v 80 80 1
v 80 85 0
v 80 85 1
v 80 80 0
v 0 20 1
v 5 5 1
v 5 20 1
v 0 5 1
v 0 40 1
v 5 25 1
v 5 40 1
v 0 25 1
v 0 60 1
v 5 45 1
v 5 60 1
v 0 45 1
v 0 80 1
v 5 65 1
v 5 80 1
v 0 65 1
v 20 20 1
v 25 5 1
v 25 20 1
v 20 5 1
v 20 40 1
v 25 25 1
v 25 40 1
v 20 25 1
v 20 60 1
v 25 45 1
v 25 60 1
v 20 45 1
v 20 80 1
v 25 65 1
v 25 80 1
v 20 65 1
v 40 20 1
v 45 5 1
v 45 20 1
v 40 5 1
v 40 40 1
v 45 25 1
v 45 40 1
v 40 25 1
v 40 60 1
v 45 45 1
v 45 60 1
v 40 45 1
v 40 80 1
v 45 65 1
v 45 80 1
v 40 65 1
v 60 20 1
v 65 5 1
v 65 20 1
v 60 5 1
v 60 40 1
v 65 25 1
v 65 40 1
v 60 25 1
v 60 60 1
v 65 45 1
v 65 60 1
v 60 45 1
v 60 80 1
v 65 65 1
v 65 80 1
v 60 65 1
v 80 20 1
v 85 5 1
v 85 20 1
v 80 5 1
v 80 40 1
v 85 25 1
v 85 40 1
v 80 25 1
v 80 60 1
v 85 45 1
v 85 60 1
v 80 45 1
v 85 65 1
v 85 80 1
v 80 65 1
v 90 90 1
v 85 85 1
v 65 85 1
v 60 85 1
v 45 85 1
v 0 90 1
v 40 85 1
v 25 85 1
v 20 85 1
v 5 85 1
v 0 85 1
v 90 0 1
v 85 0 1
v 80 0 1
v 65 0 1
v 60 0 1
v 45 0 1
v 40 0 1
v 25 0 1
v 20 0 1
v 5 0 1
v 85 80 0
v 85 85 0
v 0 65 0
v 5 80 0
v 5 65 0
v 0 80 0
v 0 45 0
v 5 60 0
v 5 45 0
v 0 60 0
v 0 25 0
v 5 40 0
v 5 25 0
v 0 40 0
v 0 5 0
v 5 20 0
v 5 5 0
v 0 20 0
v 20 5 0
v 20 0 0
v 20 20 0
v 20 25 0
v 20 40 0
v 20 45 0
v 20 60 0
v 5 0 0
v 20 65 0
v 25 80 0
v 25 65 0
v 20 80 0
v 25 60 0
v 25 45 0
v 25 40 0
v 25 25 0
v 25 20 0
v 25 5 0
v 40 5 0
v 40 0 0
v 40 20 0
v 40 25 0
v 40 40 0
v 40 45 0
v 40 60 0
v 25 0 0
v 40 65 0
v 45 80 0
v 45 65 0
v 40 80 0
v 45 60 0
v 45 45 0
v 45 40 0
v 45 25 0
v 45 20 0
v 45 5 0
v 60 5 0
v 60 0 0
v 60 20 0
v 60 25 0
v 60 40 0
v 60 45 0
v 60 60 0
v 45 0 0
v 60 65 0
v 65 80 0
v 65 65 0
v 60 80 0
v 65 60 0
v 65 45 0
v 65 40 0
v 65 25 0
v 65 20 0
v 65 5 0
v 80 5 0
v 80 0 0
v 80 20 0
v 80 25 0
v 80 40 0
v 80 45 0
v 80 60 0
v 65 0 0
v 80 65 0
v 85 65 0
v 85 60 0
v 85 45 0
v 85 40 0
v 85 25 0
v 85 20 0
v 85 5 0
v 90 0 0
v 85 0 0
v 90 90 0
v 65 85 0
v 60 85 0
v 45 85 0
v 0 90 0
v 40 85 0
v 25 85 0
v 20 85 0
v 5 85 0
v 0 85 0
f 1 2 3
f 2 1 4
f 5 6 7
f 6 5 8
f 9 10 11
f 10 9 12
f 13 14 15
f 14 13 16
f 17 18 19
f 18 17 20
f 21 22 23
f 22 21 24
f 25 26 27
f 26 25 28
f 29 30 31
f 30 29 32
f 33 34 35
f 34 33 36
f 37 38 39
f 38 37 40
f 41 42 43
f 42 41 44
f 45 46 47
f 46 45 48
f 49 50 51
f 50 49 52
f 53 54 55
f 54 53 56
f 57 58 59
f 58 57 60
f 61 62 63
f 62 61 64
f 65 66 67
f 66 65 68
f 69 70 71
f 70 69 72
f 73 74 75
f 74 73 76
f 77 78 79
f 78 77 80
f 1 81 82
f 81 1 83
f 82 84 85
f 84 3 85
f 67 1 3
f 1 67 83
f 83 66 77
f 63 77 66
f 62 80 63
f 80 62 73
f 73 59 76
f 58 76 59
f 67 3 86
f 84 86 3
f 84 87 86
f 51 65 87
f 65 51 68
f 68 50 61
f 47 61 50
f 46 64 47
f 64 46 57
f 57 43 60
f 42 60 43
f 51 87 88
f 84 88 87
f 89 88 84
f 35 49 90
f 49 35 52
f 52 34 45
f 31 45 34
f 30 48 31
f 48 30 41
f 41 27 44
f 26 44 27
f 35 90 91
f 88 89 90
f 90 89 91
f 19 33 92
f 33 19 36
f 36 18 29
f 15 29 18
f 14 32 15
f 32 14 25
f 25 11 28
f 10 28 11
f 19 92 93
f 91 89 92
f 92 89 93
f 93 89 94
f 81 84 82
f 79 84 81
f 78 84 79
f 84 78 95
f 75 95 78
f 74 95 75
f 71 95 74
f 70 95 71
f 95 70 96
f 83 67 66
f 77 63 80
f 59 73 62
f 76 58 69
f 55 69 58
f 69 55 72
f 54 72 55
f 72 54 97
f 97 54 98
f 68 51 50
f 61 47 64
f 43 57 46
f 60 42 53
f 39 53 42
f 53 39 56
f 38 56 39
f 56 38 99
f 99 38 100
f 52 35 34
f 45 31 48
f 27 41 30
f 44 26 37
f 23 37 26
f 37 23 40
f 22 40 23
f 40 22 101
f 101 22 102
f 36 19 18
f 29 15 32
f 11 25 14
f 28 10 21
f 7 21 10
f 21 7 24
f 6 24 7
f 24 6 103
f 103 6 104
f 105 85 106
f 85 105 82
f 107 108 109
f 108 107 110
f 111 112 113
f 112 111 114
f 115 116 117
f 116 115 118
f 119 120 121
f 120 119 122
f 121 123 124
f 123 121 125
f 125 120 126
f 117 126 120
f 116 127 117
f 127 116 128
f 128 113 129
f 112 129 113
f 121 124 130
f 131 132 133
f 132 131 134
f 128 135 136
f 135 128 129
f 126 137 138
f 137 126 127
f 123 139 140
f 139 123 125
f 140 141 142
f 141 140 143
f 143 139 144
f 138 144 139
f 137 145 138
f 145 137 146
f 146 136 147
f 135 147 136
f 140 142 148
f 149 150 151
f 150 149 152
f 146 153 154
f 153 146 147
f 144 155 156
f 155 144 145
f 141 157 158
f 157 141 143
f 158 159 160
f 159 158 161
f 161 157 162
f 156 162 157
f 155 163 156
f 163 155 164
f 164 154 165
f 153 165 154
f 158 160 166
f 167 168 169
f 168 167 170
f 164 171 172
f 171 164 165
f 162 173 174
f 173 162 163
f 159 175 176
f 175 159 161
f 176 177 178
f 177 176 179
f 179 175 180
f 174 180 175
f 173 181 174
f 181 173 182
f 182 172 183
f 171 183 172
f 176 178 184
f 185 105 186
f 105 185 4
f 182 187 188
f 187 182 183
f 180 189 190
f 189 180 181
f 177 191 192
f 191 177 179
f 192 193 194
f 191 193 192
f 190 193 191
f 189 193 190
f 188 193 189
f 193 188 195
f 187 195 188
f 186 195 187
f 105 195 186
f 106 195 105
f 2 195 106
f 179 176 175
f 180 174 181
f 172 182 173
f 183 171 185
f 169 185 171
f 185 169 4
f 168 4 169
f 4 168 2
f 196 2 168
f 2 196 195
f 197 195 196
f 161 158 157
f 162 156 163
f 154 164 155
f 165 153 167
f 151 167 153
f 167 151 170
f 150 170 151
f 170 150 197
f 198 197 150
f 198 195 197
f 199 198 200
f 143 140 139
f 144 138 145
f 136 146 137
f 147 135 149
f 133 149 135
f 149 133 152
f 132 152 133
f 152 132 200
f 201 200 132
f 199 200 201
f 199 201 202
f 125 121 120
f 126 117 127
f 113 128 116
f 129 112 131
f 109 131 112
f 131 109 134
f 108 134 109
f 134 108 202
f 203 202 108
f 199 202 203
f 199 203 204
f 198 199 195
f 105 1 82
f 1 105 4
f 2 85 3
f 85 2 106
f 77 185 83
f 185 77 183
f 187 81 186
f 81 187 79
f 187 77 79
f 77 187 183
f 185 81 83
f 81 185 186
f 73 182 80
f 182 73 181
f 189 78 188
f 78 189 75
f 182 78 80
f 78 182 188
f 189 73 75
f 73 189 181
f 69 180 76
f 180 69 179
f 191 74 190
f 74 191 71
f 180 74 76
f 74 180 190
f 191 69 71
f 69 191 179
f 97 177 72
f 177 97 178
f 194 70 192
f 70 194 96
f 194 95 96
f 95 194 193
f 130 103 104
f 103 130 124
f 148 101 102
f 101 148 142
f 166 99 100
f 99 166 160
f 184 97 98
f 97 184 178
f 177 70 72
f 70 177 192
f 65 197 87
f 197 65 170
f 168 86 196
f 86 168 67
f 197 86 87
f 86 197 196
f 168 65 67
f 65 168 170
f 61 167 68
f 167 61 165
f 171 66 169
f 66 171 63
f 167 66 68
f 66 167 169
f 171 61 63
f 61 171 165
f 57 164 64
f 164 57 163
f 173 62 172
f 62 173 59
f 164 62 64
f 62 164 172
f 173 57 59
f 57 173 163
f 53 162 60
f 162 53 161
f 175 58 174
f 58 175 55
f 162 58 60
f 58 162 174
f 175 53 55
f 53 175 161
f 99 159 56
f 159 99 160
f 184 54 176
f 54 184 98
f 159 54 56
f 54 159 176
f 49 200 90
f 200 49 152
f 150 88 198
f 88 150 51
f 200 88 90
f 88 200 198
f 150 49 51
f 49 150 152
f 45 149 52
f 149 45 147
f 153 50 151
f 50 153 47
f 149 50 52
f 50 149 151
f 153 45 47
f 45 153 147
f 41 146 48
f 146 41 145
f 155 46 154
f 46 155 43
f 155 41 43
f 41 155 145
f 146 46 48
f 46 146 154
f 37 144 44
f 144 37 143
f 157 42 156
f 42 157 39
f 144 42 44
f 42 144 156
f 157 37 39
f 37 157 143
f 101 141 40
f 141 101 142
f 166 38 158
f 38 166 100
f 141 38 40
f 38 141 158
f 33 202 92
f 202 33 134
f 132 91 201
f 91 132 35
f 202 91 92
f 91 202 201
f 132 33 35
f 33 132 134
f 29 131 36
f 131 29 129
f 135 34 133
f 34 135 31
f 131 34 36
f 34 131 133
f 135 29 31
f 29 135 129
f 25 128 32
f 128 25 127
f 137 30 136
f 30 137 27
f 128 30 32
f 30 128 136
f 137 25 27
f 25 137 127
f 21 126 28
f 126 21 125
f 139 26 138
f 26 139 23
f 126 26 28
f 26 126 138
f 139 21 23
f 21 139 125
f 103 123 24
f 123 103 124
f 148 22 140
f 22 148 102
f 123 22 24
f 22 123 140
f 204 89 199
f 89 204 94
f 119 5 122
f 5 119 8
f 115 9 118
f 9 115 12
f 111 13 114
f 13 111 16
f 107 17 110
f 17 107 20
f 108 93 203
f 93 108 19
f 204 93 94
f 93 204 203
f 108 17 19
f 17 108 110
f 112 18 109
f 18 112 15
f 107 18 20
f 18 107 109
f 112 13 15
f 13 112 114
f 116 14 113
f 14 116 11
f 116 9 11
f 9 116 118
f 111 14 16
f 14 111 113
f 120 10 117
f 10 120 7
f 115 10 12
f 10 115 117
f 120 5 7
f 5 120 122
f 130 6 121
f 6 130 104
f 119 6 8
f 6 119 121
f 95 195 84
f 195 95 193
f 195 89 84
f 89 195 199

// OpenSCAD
difference() 
{
   cube ([90,90,1]); 
for (i =[1:1:5]) {
for (j =[1:1:5])
{
    translate([100-i*20,100-j*20,0])
       cube([5,5,1]);
}
}
}
